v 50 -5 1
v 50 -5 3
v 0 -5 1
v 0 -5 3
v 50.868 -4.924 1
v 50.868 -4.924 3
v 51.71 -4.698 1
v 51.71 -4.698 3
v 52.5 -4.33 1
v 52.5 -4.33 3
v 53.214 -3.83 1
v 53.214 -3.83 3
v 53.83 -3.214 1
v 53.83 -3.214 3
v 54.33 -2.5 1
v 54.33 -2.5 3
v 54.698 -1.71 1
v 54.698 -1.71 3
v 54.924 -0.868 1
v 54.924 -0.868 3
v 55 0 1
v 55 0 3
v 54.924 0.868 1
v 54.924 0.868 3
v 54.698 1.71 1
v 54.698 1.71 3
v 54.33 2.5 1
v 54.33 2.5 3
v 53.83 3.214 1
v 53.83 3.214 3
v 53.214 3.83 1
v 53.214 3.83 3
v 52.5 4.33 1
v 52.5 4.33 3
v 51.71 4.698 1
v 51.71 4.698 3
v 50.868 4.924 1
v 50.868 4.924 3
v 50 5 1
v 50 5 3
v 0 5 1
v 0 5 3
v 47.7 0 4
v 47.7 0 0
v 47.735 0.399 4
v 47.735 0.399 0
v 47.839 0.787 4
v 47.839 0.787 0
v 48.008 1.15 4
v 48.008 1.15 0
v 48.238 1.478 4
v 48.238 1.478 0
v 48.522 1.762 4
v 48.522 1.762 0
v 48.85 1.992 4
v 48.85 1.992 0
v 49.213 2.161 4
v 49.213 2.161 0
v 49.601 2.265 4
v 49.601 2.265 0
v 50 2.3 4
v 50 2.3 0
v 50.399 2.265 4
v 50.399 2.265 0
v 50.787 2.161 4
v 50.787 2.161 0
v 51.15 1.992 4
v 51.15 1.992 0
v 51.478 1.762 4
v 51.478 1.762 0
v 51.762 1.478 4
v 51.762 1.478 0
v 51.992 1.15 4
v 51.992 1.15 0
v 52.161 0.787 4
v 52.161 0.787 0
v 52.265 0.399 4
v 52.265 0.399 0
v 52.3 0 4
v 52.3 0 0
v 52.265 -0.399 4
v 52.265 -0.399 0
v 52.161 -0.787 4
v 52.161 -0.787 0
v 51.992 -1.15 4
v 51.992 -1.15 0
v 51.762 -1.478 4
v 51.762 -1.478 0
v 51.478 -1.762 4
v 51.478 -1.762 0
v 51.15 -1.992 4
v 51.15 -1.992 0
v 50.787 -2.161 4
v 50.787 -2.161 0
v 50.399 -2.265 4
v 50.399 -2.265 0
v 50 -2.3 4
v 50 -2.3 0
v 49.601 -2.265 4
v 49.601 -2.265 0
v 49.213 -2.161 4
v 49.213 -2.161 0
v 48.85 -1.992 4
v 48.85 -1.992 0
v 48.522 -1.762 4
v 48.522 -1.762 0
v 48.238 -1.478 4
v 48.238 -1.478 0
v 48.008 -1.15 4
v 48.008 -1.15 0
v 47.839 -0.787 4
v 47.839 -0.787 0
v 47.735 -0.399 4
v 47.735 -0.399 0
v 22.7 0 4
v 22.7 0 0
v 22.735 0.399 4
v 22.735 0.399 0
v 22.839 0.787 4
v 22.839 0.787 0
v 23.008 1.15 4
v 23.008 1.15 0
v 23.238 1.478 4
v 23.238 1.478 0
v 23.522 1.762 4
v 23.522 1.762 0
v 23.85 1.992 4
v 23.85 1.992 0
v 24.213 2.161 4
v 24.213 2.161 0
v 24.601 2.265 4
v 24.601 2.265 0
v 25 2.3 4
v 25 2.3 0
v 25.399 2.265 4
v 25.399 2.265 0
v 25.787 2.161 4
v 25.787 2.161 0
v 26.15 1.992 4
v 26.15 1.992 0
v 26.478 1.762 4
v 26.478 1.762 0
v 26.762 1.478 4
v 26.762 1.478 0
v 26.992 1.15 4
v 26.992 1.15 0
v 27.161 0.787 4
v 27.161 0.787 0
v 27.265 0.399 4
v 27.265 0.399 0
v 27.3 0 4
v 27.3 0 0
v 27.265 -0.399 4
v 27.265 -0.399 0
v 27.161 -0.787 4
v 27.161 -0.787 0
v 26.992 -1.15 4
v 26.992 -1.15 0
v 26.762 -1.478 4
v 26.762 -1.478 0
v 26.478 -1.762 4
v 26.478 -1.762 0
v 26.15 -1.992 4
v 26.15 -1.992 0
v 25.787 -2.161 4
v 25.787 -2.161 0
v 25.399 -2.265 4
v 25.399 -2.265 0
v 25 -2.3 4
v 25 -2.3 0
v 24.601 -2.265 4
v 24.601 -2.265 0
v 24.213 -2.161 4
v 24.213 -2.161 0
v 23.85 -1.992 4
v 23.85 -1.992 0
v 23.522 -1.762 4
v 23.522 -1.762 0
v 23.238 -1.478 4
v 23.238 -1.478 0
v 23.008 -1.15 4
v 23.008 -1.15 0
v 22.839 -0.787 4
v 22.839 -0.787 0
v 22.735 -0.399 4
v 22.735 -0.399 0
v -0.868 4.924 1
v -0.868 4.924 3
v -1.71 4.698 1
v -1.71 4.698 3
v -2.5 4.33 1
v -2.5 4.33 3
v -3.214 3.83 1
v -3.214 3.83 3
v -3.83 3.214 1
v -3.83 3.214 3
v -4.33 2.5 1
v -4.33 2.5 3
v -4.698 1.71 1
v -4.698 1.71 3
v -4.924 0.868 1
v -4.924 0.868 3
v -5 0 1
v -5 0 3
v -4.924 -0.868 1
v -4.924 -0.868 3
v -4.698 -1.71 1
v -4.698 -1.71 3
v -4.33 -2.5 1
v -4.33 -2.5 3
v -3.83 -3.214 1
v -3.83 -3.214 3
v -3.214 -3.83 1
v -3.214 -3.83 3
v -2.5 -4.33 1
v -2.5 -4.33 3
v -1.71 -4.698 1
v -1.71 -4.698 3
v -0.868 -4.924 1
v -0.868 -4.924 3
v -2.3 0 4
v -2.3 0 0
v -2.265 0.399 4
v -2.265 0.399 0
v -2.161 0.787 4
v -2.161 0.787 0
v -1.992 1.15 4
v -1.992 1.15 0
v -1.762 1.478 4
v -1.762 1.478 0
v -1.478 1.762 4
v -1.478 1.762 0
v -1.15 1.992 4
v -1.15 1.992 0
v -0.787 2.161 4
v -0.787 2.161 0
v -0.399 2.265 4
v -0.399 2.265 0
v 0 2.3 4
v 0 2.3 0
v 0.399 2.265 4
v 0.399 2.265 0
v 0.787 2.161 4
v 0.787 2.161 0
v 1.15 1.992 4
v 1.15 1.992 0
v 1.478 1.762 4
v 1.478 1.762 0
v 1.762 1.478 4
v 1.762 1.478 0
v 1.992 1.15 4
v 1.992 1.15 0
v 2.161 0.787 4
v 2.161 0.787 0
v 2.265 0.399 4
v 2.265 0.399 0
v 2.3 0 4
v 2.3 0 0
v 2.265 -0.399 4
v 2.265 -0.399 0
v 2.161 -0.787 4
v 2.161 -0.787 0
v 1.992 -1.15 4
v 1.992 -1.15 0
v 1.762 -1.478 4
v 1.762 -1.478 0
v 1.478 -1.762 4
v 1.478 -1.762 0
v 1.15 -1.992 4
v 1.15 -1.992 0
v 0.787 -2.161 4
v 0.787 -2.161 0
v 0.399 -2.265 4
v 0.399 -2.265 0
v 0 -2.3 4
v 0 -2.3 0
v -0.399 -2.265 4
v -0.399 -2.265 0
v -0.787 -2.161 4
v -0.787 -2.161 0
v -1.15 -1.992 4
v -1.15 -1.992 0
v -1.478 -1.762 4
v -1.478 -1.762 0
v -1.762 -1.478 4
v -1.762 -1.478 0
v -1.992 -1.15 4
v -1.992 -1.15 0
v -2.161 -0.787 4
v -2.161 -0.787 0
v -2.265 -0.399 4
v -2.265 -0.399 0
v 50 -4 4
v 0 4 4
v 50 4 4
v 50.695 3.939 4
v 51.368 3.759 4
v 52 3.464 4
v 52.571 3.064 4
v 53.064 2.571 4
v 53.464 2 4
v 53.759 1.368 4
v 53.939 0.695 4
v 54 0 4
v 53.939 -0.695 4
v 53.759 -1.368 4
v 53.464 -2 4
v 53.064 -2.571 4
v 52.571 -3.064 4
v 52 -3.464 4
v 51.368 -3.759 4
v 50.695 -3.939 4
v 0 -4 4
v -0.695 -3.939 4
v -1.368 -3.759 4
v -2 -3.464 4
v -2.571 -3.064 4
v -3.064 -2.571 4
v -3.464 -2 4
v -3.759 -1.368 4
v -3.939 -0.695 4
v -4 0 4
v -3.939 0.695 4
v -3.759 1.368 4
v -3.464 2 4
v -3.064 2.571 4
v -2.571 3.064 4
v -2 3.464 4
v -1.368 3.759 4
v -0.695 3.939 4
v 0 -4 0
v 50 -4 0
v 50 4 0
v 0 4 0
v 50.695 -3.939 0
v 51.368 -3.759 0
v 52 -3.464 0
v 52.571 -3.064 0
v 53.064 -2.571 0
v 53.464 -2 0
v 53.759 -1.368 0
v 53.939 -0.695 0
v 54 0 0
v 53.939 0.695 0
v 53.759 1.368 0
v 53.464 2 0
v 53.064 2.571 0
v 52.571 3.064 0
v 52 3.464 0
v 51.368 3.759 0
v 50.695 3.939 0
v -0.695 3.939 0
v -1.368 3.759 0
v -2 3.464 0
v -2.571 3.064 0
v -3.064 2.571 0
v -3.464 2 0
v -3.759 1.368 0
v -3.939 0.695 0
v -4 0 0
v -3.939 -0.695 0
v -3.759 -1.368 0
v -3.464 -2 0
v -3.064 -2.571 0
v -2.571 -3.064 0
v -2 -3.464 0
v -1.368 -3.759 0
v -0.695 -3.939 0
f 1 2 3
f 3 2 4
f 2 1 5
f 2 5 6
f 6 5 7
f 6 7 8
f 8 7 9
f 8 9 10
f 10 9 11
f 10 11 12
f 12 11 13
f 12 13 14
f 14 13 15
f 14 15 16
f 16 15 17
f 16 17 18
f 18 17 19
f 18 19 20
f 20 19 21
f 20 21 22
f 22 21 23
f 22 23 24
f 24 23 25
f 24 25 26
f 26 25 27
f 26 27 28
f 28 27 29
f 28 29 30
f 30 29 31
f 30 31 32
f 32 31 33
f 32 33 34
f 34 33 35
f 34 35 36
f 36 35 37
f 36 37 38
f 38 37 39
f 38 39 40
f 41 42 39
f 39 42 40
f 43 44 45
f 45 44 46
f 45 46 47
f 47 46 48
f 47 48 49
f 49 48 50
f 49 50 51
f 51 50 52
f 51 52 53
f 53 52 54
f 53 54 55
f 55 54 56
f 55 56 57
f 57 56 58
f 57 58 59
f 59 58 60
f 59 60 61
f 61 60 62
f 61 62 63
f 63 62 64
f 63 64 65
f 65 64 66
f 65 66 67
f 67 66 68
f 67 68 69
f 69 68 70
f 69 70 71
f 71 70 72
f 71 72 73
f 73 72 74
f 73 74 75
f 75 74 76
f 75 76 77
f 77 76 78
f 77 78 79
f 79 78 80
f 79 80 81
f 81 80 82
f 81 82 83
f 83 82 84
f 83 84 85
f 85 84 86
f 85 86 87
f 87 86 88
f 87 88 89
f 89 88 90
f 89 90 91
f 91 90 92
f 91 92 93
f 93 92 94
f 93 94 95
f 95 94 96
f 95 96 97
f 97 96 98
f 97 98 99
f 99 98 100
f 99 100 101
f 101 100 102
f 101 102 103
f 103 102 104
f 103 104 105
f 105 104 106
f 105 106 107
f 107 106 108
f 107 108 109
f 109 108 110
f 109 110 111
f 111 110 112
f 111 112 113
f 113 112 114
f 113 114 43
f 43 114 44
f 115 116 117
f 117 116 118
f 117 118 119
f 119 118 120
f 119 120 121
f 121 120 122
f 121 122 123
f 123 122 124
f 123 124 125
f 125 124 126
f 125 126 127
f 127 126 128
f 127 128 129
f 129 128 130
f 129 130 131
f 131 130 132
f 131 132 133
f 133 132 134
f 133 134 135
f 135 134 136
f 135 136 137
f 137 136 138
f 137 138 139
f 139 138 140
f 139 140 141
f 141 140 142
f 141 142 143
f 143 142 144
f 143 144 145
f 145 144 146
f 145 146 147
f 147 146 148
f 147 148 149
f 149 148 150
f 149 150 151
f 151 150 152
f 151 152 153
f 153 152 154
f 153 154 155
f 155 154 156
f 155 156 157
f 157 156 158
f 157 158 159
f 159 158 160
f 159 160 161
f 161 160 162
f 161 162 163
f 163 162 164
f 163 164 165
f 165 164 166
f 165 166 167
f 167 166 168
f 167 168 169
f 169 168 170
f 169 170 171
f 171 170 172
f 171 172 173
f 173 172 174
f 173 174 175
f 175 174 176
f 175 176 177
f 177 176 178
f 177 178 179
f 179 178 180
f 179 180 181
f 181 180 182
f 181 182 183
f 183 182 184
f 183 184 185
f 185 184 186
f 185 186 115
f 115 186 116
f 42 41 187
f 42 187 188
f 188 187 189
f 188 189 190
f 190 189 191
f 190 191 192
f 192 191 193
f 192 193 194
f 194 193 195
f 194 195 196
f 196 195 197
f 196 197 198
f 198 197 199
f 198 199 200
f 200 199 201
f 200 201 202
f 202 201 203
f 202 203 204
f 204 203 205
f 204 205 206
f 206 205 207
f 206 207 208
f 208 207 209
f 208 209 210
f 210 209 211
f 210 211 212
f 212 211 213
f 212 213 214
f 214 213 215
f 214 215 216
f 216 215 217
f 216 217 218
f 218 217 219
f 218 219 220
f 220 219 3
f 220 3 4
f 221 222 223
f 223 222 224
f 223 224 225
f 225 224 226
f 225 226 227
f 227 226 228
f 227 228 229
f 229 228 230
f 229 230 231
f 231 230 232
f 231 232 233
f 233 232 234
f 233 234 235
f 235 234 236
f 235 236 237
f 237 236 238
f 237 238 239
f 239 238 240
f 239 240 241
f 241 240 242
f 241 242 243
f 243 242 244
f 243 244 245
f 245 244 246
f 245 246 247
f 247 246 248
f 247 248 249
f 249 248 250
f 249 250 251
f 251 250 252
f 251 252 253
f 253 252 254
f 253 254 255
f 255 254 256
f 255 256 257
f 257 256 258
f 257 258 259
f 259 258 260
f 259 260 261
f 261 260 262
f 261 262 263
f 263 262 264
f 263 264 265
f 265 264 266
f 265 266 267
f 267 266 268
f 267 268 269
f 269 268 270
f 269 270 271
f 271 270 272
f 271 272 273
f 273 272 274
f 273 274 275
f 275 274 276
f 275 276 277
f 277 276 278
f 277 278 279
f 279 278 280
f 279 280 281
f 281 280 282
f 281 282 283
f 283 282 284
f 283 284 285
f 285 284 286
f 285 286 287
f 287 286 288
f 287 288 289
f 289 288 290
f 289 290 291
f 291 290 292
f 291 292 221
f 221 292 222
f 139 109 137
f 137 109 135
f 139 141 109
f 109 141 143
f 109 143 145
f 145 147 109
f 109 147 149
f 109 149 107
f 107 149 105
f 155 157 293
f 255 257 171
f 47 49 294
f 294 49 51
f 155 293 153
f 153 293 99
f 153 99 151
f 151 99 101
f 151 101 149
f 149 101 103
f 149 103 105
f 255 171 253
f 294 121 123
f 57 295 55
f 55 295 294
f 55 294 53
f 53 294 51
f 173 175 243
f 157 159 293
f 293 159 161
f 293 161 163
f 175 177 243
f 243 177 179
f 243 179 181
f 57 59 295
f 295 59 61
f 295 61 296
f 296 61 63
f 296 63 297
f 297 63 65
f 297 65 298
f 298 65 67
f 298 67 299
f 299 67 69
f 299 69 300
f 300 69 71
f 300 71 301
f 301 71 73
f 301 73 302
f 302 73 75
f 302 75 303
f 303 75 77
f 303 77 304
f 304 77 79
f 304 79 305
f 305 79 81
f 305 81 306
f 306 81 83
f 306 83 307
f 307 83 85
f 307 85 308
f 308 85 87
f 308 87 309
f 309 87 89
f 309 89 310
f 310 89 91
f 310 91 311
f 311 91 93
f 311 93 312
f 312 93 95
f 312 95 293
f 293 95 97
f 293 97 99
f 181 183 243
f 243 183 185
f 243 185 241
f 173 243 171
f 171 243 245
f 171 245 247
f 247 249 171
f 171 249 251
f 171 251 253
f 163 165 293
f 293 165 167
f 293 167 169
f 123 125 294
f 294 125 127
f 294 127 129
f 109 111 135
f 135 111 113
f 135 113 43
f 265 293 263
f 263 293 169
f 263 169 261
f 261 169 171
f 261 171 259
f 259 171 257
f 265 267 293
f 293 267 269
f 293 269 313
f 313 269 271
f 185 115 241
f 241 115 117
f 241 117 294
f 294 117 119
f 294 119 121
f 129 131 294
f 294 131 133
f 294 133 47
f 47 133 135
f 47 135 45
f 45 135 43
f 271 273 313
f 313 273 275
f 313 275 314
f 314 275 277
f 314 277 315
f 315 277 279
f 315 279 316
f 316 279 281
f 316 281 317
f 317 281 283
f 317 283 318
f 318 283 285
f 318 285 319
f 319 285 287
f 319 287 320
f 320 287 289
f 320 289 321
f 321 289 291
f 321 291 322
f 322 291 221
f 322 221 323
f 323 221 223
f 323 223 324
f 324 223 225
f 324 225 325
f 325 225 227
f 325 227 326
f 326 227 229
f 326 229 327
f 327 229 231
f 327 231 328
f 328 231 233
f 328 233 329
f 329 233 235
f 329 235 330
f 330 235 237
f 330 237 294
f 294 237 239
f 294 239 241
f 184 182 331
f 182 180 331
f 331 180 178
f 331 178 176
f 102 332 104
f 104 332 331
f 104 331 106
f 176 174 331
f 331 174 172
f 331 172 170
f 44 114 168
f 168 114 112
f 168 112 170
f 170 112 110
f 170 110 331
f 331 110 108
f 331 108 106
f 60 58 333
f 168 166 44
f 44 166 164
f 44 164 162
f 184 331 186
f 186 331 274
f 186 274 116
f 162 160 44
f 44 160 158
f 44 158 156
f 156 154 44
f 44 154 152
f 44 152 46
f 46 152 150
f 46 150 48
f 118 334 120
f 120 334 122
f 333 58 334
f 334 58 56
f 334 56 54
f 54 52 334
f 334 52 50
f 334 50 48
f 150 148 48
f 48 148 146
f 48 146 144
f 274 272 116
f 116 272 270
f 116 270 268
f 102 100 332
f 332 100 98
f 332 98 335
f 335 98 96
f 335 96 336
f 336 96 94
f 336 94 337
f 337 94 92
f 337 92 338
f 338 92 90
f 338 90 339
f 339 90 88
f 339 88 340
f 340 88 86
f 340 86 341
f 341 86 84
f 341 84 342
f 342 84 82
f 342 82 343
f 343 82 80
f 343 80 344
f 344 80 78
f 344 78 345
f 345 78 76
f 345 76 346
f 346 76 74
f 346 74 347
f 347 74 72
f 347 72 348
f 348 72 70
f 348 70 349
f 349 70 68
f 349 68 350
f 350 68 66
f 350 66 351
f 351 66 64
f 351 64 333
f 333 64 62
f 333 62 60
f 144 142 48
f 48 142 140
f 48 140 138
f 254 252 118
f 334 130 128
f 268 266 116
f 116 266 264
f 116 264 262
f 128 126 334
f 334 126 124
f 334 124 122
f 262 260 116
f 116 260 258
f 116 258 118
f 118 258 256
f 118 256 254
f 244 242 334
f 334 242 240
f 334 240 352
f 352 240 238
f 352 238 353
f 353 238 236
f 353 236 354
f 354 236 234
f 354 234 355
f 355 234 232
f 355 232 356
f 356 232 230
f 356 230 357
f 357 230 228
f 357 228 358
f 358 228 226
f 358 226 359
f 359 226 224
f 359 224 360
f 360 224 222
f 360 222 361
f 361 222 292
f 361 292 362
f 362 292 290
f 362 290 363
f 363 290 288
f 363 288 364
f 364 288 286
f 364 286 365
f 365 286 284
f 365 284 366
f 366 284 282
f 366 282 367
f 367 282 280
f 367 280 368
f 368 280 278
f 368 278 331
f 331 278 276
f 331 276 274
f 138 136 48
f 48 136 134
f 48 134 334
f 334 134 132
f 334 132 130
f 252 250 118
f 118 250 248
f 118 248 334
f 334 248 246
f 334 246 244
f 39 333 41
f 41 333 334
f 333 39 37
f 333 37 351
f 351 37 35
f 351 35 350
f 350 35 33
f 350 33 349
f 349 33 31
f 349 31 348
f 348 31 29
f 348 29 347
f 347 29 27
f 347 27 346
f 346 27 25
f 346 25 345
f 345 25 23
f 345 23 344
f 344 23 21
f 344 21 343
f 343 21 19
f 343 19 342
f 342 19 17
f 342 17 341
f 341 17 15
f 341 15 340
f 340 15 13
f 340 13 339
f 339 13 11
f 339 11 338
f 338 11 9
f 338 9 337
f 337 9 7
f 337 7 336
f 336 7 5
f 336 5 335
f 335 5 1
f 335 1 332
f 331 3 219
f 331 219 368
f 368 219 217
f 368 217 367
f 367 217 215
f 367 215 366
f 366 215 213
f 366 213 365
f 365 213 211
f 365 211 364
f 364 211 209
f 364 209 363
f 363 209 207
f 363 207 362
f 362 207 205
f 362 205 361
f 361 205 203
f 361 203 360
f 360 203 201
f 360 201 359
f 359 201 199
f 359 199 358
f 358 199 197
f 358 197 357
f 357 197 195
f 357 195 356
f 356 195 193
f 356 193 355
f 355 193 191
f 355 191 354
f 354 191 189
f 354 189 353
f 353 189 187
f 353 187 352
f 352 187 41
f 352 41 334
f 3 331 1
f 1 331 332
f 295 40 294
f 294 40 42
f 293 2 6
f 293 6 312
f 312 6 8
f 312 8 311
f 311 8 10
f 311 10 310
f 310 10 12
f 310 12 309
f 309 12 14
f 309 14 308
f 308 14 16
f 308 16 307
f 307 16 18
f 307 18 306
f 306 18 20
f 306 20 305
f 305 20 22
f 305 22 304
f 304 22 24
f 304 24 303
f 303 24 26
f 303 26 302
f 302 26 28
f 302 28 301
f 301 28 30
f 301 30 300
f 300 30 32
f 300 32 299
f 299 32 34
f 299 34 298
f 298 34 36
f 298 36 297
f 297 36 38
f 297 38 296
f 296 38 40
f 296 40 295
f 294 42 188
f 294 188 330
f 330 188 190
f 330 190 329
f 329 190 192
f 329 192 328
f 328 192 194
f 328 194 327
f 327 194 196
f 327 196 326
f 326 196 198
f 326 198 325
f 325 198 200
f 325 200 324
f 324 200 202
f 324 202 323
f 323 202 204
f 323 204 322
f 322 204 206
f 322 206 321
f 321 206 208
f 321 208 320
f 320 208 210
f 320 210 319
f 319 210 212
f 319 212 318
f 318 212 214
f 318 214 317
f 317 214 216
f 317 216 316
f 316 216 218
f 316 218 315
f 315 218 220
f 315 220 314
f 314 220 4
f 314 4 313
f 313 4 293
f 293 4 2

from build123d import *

# Parameters (mm, degrees)
SKETCH1_R           = 2.3
BOSS_EXTRUDE1_DEPTH = 4
CHAMFER1_SIZE       = 1


with BuildPart() as part:
    # Sketch1 → Boss-Extrude1 (new body)
    with BuildSketch(Plane.XY):
        with BuildLine():
            Line((50, 5), (0, 5))
            ThreePointArc((0, 5), (-5, 0), (0, -5))
            Line((0, -5), (50, -5))
            ThreePointArc((50, -5), (55, 0), (50, 5))
        make_face()
        with Locations((25, 0)):
            Circle(SKETCH1_R, mode=Mode.SUBTRACT)
        Circle(SKETCH1_R, mode=Mode.SUBTRACT)
        with Locations((50, 0)):
            Circle(SKETCH1_R, mode=Mode.SUBTRACT)
    extrude(amount=BOSS_EXTRUDE1_DEPTH)

    # Chamfer1
    chamfer1_edges = [part.edges().sort_by_distance(p)[0] for p in [
        (-5, 0, 0),
        (25, 5, 0),
        (55, 0, 0),
        (25, -5, 0),
        (55, 0, 4),
        (25, 5, 4),
        (-5, 0, 4),
        (25, -5, 4),
    ]]
    chamfer(chamfer1_edges, length=CHAMFER1_SIZE)


solid = part.part
